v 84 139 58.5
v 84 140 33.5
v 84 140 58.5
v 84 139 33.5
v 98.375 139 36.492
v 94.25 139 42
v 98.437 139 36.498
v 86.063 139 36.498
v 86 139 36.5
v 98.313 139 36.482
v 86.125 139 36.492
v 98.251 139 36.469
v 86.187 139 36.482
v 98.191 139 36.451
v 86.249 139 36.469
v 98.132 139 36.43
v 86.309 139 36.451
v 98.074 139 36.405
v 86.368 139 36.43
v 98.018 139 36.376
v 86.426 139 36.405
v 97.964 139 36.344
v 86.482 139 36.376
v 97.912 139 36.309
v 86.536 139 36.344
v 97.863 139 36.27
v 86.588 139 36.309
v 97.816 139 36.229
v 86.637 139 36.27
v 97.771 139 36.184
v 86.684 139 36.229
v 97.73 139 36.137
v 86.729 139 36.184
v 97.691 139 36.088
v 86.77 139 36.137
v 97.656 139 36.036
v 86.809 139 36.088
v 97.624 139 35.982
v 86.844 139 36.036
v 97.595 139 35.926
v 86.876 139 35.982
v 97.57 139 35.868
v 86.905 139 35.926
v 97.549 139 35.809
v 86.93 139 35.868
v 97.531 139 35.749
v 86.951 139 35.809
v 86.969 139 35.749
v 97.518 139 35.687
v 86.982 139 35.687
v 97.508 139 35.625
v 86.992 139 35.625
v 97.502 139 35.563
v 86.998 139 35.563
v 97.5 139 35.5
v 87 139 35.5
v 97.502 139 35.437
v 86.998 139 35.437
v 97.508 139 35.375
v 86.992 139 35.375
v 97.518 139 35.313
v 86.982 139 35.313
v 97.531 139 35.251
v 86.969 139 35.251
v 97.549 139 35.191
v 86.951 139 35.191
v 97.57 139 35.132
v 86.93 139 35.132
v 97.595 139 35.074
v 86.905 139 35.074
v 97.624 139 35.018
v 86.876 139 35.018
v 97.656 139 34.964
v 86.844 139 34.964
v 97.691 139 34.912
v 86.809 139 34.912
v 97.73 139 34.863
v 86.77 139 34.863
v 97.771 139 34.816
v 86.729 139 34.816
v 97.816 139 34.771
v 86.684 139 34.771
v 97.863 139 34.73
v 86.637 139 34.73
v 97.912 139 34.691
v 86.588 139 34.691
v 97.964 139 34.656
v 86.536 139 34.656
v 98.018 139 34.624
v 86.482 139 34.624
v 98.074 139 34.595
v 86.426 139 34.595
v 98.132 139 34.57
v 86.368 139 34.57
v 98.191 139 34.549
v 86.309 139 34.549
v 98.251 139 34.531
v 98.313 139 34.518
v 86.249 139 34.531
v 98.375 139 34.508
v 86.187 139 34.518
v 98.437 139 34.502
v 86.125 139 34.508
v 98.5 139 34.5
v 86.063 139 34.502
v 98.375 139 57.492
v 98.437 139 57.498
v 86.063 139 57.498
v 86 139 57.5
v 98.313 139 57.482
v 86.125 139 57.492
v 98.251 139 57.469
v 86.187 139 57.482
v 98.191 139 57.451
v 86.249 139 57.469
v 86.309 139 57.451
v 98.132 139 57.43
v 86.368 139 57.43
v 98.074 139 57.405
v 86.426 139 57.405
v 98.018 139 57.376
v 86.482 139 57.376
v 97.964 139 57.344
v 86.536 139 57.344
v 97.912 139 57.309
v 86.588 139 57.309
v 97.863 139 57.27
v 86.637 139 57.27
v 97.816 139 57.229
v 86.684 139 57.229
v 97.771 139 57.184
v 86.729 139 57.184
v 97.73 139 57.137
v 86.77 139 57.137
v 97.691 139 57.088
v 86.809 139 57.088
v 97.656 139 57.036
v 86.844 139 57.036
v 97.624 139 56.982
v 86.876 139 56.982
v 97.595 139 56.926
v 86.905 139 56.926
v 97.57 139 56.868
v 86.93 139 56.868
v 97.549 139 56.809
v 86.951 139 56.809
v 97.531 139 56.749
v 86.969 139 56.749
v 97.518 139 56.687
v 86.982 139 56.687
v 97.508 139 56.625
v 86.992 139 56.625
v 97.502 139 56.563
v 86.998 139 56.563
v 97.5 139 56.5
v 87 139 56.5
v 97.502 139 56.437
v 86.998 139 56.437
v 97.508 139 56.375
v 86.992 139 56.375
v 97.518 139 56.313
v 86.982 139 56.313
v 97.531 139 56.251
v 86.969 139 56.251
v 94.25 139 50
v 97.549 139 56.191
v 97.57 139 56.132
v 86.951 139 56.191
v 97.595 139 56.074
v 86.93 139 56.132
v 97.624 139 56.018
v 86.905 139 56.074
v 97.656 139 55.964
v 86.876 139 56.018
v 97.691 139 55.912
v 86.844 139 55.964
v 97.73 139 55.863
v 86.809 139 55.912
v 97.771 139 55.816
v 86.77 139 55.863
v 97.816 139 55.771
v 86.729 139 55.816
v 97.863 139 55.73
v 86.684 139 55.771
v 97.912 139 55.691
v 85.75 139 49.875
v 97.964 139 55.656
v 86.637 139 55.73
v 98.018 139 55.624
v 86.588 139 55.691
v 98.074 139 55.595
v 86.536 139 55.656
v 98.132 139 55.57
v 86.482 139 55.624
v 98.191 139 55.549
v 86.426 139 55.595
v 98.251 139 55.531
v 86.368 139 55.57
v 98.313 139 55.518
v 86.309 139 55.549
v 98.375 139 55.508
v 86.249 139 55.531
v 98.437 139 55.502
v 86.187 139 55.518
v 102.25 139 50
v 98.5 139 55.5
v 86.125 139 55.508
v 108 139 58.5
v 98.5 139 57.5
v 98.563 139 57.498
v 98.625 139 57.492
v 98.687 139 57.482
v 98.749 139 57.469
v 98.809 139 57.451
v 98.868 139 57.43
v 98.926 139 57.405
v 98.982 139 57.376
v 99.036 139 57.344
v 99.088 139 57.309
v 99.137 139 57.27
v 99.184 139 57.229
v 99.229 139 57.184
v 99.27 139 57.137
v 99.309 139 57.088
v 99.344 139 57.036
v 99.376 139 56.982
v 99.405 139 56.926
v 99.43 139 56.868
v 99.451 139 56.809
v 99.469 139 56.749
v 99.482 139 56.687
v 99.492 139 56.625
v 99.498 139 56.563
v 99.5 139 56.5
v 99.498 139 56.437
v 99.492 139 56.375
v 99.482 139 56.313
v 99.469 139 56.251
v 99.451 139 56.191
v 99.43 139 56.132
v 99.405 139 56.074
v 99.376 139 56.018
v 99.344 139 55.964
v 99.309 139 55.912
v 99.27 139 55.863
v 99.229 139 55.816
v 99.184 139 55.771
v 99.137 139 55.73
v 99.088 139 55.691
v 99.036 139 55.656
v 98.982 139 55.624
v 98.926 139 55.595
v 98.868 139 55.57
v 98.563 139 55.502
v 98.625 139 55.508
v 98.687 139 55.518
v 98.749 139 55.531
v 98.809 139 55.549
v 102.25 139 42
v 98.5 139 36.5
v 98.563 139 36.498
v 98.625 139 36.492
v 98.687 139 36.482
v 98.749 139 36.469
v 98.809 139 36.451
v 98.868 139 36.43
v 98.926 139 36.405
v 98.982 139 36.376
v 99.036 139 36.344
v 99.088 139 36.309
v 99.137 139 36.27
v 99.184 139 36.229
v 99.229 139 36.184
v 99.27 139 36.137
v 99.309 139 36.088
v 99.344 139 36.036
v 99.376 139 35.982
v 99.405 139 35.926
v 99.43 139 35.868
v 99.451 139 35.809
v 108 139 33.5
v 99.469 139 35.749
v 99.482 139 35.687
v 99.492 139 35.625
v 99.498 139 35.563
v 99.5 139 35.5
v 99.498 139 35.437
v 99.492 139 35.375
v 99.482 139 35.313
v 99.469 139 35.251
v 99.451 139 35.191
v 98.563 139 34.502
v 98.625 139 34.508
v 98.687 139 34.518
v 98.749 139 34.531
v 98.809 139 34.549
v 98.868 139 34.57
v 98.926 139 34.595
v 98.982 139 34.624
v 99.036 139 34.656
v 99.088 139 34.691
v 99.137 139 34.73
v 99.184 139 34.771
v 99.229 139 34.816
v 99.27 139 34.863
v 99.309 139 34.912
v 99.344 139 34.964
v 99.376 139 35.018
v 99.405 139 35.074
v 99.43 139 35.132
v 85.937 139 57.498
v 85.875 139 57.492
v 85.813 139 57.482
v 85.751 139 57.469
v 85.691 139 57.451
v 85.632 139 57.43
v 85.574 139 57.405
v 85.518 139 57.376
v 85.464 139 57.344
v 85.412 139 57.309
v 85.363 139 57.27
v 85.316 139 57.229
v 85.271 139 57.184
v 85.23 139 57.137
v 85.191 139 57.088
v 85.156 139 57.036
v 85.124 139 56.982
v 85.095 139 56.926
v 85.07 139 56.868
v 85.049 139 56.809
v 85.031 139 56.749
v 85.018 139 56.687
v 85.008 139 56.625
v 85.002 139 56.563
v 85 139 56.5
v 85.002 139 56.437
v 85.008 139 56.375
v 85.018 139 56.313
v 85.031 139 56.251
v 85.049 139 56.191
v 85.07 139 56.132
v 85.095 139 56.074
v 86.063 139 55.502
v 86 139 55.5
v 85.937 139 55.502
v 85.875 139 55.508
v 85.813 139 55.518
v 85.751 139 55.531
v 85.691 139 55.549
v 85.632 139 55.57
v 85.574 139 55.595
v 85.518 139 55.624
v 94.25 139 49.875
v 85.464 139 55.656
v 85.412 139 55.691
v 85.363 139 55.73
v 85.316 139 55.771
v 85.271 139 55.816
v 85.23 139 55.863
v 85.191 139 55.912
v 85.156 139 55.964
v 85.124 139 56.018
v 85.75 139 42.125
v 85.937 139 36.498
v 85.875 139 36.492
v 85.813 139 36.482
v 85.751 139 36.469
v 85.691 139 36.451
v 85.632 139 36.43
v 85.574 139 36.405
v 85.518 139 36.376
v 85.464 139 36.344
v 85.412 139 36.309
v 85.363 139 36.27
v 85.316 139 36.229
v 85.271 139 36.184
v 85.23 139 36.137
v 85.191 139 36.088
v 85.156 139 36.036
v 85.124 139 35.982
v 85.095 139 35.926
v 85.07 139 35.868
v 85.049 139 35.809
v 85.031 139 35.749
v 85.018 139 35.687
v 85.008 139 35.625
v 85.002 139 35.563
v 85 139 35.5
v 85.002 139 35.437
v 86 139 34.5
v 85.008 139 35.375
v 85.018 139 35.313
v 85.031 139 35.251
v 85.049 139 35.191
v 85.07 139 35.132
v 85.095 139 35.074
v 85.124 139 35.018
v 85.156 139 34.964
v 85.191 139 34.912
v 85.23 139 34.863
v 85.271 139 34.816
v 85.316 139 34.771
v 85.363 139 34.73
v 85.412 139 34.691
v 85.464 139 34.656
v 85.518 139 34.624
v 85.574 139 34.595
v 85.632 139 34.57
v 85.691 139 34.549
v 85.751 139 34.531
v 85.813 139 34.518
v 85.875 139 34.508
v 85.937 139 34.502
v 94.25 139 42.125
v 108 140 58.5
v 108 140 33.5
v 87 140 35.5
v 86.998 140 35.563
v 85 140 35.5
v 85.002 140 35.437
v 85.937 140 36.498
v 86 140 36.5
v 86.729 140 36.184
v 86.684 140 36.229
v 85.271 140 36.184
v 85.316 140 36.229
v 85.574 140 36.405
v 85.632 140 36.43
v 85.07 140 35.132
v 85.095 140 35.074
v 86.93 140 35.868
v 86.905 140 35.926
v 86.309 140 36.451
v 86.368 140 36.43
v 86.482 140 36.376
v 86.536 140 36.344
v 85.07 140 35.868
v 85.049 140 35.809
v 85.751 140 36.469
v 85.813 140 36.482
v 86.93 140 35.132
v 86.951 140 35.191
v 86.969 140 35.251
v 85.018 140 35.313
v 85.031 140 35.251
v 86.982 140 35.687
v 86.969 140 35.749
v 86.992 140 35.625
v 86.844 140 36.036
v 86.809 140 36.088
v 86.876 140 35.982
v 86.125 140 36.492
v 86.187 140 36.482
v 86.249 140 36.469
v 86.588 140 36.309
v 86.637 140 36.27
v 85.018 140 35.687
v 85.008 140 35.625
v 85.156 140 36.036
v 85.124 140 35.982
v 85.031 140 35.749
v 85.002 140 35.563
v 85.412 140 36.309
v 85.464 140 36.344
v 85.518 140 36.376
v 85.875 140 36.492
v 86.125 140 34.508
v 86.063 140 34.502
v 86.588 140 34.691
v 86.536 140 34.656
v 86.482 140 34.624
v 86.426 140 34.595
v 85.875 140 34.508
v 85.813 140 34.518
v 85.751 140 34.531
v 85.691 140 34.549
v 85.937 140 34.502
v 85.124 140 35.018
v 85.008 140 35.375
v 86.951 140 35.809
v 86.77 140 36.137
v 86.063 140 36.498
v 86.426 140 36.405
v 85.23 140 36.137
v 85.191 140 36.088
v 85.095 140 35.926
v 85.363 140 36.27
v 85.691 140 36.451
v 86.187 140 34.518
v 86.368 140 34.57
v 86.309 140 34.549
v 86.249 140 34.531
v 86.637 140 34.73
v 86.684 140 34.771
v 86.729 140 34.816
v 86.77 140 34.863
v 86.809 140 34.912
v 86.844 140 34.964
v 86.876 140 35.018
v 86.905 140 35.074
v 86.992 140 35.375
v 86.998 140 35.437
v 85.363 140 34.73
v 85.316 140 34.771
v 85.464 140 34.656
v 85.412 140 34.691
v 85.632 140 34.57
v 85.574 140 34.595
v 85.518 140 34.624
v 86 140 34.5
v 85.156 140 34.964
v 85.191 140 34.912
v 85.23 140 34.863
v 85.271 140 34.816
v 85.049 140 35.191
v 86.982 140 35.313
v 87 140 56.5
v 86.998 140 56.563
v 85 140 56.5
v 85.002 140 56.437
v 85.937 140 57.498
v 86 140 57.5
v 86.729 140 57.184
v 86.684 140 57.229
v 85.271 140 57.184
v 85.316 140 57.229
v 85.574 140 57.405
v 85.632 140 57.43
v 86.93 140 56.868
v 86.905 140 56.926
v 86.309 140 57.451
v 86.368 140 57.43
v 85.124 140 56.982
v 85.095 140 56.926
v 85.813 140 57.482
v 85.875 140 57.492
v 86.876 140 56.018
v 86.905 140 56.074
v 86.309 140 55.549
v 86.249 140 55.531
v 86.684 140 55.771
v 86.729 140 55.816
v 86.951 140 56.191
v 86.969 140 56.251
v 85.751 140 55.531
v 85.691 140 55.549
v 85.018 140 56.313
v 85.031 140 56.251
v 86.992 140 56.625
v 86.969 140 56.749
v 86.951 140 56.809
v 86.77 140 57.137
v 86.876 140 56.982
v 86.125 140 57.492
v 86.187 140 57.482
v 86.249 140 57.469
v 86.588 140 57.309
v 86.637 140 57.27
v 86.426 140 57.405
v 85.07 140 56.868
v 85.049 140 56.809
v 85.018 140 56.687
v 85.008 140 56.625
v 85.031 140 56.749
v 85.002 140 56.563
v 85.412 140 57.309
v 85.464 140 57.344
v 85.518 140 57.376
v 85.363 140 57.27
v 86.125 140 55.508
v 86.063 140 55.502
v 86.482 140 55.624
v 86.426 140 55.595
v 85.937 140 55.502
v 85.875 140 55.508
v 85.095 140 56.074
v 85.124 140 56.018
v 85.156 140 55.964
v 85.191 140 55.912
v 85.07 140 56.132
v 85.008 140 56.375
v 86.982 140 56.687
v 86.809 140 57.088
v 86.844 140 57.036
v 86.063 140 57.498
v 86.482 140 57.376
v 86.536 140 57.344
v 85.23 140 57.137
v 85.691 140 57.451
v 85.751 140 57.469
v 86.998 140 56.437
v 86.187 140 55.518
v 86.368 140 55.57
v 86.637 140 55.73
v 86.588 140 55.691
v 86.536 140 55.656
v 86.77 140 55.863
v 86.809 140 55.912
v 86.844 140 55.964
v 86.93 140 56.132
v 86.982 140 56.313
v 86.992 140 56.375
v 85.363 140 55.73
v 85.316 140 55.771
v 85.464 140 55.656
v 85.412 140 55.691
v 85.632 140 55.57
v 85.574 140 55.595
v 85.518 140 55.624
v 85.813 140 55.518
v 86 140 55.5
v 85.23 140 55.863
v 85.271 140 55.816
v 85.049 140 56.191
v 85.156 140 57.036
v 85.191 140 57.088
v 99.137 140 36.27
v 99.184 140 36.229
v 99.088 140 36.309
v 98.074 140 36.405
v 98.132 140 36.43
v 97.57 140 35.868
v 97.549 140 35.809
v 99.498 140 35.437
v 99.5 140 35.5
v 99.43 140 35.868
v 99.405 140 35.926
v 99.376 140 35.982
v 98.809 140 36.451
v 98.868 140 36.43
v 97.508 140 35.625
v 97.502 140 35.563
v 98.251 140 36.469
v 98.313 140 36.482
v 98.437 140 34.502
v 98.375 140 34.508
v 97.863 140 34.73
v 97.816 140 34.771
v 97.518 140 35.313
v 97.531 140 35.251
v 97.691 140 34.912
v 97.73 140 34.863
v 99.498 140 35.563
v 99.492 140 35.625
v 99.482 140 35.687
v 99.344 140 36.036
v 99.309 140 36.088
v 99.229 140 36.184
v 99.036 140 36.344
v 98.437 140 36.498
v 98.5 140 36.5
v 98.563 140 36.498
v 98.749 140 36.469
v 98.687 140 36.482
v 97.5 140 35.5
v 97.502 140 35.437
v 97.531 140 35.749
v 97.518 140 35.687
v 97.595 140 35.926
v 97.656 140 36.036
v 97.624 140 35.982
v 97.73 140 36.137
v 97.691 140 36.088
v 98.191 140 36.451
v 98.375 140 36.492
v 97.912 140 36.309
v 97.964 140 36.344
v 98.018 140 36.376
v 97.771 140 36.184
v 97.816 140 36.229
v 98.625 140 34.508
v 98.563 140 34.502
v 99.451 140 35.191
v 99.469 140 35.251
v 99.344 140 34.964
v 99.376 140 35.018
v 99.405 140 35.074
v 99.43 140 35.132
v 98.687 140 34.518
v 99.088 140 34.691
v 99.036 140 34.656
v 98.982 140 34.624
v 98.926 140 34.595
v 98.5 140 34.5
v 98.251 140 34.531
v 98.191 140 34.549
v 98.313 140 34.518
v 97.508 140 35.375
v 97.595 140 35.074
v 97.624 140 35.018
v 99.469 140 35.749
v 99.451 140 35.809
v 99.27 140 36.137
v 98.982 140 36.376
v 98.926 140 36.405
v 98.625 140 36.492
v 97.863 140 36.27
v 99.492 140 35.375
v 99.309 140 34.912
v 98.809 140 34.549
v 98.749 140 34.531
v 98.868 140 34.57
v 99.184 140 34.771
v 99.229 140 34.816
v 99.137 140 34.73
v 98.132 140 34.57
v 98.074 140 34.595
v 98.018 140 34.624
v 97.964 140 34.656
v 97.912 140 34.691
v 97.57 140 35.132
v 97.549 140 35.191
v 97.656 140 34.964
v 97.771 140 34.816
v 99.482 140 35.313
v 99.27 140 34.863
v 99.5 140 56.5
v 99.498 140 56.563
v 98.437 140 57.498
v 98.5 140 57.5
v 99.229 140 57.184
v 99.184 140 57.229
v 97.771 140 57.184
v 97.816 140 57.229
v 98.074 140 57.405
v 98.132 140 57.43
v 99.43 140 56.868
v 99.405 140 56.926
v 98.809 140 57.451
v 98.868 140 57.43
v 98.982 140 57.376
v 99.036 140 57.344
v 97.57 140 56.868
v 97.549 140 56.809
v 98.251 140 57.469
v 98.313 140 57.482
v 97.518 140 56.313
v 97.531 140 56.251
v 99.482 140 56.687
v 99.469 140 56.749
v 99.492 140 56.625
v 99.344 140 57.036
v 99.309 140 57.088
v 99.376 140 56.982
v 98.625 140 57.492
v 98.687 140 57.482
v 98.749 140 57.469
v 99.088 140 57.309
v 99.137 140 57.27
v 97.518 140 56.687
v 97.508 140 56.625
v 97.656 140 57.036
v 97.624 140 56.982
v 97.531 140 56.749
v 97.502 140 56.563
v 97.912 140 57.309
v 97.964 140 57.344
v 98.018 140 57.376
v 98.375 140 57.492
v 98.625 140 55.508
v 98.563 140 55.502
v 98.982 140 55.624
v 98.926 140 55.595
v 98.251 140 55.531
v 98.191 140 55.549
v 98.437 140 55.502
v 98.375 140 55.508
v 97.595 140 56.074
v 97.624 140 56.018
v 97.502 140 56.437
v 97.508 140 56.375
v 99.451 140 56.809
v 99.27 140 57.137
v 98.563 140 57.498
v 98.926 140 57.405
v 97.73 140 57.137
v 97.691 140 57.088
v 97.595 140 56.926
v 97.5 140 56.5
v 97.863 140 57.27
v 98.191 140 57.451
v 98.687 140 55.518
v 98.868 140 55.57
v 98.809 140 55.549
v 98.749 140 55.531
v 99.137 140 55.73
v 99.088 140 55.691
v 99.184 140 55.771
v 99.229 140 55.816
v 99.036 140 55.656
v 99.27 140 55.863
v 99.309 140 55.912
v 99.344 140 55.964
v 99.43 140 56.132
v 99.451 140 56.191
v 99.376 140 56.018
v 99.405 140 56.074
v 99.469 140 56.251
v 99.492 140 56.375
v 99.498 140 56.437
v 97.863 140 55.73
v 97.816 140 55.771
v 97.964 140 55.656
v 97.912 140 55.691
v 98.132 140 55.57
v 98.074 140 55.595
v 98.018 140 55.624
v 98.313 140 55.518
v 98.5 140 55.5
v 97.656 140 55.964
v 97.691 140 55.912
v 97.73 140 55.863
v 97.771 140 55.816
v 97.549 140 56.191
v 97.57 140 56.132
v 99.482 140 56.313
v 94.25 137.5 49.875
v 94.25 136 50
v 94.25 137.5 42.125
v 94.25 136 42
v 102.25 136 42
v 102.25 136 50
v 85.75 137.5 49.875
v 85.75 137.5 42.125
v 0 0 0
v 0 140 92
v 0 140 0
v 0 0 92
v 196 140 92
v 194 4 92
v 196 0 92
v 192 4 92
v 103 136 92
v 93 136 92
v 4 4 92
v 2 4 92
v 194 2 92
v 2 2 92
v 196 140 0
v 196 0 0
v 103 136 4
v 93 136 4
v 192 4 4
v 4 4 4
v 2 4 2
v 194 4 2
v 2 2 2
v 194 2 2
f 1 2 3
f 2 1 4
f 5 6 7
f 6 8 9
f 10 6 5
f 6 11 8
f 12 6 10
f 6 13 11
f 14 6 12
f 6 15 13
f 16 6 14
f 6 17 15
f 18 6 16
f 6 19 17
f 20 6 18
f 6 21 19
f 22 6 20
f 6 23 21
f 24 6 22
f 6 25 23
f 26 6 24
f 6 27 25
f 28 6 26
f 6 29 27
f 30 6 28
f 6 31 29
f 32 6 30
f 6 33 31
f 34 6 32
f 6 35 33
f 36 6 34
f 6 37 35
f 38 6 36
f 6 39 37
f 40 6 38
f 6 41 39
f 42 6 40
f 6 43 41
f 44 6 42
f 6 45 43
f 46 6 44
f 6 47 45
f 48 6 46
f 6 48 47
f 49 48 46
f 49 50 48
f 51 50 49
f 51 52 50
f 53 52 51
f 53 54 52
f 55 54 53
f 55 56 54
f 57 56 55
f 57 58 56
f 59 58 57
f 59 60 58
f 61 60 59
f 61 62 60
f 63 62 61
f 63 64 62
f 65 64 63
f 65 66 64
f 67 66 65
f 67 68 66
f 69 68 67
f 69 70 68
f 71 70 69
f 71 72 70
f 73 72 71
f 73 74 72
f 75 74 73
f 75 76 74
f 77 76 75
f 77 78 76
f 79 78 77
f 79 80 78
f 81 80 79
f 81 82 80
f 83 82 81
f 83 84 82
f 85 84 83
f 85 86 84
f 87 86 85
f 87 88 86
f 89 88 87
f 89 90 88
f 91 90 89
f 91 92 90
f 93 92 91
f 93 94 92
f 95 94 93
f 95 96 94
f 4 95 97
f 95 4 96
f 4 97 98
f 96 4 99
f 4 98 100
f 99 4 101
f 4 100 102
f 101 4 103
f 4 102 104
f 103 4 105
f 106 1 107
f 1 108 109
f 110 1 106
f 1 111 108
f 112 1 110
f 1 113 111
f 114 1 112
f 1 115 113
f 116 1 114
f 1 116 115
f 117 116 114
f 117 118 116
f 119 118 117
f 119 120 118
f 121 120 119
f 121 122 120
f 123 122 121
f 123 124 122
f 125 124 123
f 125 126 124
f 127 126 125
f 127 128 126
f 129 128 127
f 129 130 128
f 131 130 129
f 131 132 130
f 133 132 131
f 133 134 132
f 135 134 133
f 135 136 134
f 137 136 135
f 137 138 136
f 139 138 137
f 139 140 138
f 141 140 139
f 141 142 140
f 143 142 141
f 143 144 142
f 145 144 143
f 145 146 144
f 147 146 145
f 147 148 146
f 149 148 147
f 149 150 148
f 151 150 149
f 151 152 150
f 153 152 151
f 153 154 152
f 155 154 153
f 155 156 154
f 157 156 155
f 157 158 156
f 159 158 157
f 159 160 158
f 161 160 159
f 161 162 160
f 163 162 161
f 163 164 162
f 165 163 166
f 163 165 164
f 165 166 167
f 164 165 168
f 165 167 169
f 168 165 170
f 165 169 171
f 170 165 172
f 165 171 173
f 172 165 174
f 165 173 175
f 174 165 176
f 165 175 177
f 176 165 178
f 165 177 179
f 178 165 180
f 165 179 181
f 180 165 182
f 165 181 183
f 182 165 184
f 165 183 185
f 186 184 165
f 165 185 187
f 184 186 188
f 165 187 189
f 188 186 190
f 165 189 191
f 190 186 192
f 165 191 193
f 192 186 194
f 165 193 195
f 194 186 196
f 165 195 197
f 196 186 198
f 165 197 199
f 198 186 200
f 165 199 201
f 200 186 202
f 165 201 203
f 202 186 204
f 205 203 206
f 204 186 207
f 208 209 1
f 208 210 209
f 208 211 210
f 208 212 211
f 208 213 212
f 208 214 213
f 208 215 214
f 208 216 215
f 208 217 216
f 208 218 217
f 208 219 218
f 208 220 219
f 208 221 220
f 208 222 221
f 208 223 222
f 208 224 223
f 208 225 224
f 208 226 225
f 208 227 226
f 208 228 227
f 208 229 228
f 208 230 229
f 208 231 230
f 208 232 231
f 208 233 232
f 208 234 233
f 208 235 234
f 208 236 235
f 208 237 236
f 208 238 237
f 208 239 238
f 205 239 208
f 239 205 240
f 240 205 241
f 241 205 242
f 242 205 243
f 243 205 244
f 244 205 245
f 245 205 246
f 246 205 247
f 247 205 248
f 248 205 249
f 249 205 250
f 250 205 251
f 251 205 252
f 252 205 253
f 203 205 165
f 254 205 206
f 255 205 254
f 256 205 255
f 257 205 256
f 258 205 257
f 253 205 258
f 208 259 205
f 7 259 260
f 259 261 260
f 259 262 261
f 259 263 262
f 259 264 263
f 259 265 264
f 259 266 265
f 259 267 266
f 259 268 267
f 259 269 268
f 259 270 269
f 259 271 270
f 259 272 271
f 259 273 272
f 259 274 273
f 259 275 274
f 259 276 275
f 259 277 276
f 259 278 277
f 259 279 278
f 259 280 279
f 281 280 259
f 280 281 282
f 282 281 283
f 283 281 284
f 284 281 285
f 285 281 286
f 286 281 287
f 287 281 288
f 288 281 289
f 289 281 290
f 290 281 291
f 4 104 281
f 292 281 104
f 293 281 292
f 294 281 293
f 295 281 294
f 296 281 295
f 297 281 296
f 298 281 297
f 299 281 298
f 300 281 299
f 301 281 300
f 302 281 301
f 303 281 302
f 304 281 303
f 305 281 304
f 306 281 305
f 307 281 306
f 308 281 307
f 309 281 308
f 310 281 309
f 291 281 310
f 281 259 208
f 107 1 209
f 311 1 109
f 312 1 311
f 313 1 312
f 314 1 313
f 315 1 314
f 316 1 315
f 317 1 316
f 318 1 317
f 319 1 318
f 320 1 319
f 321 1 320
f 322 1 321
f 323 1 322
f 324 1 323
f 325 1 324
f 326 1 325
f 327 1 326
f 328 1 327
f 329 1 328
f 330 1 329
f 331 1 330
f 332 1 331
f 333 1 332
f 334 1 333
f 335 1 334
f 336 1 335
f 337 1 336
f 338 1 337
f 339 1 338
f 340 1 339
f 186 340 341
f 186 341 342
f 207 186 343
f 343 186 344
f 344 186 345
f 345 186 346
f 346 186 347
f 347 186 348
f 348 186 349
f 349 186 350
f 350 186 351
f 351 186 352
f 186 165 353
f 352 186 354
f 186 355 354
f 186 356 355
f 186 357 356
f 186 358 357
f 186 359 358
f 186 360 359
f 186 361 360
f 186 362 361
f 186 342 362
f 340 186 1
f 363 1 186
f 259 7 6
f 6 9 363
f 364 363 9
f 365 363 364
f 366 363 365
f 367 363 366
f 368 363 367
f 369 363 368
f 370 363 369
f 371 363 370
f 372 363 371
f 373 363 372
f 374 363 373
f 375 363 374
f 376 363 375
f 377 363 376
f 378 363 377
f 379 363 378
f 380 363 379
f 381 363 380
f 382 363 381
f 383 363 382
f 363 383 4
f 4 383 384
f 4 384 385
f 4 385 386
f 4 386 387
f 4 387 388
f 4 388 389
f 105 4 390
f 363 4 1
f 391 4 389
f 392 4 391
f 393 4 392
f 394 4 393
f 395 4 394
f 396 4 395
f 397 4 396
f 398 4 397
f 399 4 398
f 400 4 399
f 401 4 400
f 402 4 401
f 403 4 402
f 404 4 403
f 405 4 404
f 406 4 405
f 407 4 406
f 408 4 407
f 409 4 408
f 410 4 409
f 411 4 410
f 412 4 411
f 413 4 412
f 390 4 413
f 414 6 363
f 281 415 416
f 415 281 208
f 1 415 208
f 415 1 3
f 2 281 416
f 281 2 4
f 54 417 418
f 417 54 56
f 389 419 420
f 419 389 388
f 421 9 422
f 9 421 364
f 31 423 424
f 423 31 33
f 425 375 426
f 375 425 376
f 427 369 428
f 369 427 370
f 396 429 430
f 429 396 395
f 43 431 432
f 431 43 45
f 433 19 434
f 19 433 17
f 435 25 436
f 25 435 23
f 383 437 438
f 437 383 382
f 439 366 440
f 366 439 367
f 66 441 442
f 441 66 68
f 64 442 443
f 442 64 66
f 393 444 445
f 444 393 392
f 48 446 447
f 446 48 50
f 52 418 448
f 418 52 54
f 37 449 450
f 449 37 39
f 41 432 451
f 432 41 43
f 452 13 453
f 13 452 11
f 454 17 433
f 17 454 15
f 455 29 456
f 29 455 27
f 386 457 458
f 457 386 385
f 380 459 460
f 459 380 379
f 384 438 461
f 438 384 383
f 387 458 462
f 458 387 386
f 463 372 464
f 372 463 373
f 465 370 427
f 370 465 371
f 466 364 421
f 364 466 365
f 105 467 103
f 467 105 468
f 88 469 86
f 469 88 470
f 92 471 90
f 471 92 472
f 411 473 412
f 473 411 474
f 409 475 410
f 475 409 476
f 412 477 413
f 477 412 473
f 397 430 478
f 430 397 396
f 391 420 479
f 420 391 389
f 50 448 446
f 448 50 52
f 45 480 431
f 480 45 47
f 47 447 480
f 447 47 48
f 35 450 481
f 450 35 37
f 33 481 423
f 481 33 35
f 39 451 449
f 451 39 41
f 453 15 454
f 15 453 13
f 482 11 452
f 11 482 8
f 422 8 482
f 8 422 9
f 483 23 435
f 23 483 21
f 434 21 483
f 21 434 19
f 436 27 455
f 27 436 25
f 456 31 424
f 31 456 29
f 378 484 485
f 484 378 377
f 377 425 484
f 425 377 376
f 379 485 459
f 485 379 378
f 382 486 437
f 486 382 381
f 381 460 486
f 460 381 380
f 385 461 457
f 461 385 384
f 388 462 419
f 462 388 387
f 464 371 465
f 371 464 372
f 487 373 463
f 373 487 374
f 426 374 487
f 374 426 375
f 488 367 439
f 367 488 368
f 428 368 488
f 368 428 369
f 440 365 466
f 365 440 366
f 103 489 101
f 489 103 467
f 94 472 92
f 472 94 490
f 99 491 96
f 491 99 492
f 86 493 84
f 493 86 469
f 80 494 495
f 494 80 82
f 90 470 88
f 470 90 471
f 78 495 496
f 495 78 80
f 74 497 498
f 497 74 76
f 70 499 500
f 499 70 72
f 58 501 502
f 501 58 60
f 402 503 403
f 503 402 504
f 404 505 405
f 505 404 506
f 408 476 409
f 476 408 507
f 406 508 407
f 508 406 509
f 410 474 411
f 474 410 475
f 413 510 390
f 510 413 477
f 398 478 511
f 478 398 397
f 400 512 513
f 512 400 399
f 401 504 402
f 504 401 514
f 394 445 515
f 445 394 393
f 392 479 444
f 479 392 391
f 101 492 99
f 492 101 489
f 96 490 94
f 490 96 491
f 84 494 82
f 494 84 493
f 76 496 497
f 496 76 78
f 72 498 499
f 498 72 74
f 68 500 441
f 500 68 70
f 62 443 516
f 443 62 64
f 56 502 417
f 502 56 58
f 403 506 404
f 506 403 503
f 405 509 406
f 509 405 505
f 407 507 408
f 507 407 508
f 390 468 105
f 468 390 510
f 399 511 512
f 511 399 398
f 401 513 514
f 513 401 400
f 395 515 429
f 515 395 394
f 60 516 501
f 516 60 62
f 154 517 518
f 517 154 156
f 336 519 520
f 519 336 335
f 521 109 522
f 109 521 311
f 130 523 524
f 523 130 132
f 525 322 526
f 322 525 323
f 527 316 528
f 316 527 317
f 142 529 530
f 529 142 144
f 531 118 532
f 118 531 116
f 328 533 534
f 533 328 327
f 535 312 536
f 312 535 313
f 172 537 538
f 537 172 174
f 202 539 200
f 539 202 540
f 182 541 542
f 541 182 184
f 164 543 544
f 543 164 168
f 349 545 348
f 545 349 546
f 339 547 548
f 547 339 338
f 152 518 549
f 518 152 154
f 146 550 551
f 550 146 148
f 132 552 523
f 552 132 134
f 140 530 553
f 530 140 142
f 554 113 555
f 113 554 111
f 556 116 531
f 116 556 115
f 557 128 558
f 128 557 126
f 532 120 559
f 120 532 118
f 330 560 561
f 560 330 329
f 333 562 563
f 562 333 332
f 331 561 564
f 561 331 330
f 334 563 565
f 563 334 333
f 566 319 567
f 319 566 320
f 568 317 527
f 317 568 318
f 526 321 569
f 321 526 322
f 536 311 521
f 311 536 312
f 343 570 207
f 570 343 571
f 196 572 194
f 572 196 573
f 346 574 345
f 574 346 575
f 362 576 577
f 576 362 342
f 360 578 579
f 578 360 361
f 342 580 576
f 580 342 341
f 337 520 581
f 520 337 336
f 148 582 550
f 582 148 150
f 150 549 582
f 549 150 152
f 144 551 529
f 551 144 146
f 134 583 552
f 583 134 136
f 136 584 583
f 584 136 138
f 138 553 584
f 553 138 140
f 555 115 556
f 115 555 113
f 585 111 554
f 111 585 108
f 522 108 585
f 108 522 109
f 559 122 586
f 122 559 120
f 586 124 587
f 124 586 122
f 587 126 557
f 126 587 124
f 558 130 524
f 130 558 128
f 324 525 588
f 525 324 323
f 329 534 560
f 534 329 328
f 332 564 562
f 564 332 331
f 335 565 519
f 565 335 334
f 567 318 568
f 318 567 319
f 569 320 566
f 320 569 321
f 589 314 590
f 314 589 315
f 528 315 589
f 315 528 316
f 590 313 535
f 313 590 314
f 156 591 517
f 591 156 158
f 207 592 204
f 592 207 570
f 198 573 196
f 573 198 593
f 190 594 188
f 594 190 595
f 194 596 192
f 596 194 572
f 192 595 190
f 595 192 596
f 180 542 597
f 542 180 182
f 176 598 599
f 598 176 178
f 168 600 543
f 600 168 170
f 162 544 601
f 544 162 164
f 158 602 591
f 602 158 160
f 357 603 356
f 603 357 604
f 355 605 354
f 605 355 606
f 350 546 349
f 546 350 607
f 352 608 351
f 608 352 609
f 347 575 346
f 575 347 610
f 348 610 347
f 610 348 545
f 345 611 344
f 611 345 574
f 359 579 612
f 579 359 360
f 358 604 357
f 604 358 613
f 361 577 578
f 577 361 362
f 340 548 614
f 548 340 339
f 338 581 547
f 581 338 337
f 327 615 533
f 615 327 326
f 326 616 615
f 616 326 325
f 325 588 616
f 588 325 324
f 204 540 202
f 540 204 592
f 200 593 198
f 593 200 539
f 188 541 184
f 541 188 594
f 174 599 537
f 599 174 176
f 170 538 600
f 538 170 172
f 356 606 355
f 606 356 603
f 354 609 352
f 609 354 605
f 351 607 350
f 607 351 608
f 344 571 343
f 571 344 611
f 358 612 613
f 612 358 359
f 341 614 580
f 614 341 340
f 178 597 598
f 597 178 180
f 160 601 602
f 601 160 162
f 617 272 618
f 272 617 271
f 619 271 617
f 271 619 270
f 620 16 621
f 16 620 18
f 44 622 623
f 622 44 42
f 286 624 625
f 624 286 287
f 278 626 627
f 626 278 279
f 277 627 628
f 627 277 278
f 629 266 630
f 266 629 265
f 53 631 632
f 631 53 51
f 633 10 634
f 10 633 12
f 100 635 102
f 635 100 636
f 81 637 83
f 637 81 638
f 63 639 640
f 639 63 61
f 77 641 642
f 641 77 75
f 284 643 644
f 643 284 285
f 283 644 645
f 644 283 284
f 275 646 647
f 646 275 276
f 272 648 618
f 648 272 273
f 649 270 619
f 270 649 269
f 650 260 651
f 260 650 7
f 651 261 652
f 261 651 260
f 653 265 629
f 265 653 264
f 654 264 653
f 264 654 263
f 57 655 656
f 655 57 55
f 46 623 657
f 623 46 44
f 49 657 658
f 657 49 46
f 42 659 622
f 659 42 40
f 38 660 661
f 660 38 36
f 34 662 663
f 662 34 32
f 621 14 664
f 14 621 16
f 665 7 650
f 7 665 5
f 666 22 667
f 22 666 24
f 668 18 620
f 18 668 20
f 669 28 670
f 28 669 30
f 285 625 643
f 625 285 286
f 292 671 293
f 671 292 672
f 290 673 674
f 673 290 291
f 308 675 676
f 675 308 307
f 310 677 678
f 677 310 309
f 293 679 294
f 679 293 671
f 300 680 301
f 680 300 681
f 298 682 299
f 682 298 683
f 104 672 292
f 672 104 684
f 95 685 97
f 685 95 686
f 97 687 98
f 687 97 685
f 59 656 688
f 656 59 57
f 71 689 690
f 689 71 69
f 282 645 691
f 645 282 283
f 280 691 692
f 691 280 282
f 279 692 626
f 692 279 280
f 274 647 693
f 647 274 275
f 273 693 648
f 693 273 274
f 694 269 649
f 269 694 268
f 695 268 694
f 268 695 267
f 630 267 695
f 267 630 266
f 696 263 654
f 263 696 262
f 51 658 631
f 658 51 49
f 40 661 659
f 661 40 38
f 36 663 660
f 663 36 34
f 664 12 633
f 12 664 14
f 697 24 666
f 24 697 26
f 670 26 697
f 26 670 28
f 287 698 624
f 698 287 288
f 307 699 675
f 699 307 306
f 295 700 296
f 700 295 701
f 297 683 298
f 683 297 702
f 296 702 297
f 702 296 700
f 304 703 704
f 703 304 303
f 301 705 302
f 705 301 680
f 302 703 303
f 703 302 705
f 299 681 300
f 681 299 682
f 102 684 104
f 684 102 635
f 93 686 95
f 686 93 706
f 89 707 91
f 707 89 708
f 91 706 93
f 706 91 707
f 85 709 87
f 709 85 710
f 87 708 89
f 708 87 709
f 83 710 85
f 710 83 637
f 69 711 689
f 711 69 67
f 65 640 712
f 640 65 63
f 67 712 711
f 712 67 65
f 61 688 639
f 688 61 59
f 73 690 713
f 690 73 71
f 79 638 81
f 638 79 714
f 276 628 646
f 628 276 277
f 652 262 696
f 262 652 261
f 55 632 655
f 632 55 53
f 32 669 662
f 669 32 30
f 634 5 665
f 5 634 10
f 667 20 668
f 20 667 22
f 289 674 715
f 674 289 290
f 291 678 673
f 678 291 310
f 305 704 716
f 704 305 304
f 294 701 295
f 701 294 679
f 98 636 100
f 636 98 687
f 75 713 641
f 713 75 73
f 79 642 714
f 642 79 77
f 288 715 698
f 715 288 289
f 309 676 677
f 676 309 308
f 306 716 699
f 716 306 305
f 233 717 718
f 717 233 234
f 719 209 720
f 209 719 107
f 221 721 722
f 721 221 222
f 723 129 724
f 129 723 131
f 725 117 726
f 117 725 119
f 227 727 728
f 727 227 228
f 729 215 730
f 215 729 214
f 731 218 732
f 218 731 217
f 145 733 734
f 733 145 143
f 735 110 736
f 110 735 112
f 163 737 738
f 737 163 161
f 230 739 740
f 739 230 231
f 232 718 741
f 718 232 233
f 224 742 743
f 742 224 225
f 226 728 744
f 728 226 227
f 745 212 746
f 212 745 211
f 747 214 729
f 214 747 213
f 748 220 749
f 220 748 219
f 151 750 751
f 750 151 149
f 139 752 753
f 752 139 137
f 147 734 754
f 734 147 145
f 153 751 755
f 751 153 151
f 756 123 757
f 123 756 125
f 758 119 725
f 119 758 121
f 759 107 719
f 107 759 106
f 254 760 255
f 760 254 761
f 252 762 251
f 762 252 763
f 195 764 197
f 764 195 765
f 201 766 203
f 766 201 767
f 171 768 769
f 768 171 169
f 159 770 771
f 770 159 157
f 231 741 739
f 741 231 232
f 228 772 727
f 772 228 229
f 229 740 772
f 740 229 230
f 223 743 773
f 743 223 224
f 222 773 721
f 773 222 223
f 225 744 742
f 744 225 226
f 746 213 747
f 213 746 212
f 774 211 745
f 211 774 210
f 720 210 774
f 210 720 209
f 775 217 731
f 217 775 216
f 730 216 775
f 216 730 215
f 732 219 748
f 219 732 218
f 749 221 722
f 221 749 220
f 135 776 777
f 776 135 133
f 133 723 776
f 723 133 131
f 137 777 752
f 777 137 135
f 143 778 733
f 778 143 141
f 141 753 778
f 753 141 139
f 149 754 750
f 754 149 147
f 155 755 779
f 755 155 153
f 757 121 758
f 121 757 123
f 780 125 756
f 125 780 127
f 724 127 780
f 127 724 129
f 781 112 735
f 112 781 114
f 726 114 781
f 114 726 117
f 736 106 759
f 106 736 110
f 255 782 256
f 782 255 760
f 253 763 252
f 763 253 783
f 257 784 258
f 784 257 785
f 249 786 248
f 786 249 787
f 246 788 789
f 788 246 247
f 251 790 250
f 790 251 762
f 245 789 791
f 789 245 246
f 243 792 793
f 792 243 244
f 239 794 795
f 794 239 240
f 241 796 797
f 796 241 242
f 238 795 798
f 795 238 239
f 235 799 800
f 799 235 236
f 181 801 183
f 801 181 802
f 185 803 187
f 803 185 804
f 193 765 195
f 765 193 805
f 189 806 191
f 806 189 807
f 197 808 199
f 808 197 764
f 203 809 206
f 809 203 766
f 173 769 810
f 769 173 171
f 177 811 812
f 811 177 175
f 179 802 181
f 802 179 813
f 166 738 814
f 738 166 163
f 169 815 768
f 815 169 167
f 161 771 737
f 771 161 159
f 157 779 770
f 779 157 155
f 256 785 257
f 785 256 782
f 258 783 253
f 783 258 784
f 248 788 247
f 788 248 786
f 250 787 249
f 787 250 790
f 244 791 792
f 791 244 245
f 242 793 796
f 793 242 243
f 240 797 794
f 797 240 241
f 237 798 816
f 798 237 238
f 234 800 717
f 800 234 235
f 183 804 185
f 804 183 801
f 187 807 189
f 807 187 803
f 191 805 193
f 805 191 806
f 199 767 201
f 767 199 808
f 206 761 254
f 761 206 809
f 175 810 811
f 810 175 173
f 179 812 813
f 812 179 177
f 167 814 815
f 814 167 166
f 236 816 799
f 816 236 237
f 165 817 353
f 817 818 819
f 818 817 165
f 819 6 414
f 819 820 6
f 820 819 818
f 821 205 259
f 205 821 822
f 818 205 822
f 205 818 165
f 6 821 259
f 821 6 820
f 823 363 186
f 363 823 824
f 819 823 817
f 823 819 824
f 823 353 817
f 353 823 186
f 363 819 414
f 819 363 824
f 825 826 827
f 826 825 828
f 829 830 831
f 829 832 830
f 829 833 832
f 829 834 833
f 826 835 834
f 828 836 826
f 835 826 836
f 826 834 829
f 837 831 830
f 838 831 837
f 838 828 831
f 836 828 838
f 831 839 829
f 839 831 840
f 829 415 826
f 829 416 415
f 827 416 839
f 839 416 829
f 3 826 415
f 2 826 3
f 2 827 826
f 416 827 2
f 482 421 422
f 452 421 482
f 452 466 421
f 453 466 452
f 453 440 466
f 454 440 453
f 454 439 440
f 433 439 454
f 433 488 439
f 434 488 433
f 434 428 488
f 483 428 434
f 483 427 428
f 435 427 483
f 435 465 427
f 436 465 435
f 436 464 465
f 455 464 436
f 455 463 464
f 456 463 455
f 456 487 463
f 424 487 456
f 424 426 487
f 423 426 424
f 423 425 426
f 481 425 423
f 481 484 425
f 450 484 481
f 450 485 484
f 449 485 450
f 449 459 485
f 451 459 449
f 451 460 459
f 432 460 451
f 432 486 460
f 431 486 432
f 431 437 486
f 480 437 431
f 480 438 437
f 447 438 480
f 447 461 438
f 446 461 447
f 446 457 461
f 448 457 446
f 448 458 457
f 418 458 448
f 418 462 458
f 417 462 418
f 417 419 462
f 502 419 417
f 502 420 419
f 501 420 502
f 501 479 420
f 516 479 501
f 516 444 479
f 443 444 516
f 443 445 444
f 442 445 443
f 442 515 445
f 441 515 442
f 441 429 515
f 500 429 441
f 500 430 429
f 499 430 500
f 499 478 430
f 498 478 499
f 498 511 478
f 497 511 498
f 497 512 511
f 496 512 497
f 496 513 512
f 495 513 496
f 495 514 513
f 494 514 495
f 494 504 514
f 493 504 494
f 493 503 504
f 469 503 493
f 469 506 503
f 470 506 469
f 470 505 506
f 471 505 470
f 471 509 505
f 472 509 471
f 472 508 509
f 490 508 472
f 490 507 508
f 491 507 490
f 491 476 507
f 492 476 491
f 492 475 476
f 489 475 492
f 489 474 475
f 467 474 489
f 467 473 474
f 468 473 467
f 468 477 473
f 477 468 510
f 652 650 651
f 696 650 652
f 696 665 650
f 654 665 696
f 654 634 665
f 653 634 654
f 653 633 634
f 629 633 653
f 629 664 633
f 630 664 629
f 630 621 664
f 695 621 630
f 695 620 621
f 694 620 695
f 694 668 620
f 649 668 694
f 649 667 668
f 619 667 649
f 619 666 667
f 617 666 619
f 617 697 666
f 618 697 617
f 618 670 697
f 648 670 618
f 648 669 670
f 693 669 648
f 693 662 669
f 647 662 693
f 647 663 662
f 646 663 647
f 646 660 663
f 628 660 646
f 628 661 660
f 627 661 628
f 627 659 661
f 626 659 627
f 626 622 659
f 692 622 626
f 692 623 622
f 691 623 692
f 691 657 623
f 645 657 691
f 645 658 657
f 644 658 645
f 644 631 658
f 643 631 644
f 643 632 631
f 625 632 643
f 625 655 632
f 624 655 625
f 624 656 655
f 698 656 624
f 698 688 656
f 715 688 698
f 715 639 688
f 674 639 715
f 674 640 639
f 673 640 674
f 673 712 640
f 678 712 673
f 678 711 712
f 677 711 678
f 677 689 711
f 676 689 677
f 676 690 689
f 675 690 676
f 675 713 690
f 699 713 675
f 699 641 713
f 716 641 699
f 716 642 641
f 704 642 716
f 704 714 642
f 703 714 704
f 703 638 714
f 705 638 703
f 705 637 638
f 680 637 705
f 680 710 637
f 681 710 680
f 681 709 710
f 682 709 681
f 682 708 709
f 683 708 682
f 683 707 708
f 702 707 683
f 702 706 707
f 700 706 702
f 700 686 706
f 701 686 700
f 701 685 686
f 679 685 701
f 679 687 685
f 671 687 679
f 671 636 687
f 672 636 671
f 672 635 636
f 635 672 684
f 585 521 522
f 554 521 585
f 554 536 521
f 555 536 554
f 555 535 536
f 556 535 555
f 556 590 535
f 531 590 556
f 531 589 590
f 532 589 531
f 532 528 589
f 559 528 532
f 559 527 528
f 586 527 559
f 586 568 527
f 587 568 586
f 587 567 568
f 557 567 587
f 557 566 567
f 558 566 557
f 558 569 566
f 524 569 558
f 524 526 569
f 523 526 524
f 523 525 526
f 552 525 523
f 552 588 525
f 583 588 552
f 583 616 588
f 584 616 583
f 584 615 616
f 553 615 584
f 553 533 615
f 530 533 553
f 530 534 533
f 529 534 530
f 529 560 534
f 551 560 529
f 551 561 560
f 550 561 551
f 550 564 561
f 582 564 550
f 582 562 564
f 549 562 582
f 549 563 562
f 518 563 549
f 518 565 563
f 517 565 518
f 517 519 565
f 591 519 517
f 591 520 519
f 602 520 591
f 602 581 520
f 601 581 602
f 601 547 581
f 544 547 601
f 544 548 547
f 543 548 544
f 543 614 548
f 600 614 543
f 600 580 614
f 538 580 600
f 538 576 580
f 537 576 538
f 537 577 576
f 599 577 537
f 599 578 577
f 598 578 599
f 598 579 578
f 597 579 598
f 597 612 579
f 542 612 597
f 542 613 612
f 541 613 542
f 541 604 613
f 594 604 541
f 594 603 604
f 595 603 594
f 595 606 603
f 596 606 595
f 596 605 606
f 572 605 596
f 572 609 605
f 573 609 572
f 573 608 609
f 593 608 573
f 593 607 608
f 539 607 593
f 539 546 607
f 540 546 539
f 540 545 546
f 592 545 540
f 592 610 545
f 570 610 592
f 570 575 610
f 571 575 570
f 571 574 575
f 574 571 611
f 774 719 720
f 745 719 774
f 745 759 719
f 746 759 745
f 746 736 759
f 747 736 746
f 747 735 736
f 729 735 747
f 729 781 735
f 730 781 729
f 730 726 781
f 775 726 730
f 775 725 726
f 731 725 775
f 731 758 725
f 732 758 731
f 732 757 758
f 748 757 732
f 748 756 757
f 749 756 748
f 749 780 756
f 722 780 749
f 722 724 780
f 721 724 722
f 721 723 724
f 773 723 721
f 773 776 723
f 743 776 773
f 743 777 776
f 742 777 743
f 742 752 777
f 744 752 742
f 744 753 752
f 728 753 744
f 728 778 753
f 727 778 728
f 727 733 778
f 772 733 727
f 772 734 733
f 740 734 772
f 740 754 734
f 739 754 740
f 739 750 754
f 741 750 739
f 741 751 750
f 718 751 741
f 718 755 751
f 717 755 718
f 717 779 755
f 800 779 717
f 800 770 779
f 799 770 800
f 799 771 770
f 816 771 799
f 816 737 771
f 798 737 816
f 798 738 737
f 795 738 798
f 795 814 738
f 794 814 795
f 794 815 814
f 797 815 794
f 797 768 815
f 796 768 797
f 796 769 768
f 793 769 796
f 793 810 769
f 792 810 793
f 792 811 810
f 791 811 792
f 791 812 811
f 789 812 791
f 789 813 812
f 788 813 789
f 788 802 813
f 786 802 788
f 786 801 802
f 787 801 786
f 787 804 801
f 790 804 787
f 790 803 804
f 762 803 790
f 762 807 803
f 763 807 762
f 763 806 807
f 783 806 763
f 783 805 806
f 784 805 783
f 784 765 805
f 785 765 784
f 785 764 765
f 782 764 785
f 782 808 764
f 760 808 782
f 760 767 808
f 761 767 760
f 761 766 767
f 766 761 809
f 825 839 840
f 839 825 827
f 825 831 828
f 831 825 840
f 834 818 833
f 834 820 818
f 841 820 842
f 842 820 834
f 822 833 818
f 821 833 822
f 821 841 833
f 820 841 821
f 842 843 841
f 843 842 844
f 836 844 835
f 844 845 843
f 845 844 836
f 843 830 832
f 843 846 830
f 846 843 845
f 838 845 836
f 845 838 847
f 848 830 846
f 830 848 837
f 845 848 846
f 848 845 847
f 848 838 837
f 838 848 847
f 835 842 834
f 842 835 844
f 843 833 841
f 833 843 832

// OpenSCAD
card_width = 188;
card_height = 84;
thickness = 4;
total_width = card_width + thickness + thickness;
total_depth = 140;
total_height = card_height + thickness + thickness;
pi_camera_height = 25;
pi_camera_width = 24;
pi_camera_square = 10;

module rpi_camera() 
{
    difference()
    {
	  cube([24,25,1]);
	  translate([2,2,-1]) 
          cylinder(d=2,h=3,$fn=100);
	  translate([2,23,-1]) 
          cylinder(d=2,h=3,$fn=100);
	  translate([14.5,2,-1]) 
          cylinder(d=2,h=3,$fn=100);
	  translate([14.5,23,-1]) 
          cylinder(d=2,h=3,$fn=100);
    }
    
    union()
    {
	    translate([10.25,8.5,1])
            cube([8,8,3.25]);
	    translate([10.25+4,12.5,1+3.25])
            cylinder(d=7.5,h=1,$fn=100);
	    translate([10.25+4,12.5,1+3.25+0.7])
            cylinder(d=5.5,h=0.7,$fn=100);
    }
    
    translate([1.75,8.625,1]) 
        cube([8.5,7.75,1.5]);
    translate([24-5.75,2.75,-2.75]) 
        cube([4.5,19.5,2.75]);
    translate([22.75,2,-2.75]) 
        cube([1.25,21,2.75]);
    translate([24,4.25,-1]) 
        cube([10,16.5,0.1]);

}

difference()
{
    cube([total_width, total_depth, total_height], center = false);

    translate([thickness, thickness, thickness])
    {
        cube([card_width, total_depth - thickness - thickness, card_height + thickness], center = false);
    }
    
    thickness_half = thickness / 2;
    translate([thickness_half, thickness_half, thickness_half])
    {
        cube([card_width + thickness_half + thickness_half, 2, total_height], center = false);
    }
    
    offset_x = (total_width - pi_camera_width) / 2;
    offset_z = (total_height - pi_camera_height) / 2;
    translate([offset_x - 2, total_depth, offset_z])
    {
        rotate([90, 0, 0])
        {
            rpi_camera();
        }
    }
    
}

// Left mirror.
mirror_height = total_height - thickness;
mirror_width = (card_width - pi_camera_square) / 2;
mirror_depth = total_depth - thickness - thickness;
translate([thickness, thickness, thickness])
{
    left_mirror_points = [ [0, 0], [mirror_width, mirror_depth], [0, mirror_depth], [0, 0]];
    linear_extrude(height = mirror_height)
    {
        polygon(left_mirror_points);
    }
    
}

translate([(total_width - thickness + thickness + pi_camera_square) / 2, thickness, thickness])
{
    right_mirror_points = [ [mirror_width, 0], [mirror_width, mirror_depth], [0, mirror_depth], [mirror_width, 0]];
    linear_extrude(height = mirror_height, center = false, convexity = 10)
    {
        polygon(right_mirror_points, 10);
    }
}
